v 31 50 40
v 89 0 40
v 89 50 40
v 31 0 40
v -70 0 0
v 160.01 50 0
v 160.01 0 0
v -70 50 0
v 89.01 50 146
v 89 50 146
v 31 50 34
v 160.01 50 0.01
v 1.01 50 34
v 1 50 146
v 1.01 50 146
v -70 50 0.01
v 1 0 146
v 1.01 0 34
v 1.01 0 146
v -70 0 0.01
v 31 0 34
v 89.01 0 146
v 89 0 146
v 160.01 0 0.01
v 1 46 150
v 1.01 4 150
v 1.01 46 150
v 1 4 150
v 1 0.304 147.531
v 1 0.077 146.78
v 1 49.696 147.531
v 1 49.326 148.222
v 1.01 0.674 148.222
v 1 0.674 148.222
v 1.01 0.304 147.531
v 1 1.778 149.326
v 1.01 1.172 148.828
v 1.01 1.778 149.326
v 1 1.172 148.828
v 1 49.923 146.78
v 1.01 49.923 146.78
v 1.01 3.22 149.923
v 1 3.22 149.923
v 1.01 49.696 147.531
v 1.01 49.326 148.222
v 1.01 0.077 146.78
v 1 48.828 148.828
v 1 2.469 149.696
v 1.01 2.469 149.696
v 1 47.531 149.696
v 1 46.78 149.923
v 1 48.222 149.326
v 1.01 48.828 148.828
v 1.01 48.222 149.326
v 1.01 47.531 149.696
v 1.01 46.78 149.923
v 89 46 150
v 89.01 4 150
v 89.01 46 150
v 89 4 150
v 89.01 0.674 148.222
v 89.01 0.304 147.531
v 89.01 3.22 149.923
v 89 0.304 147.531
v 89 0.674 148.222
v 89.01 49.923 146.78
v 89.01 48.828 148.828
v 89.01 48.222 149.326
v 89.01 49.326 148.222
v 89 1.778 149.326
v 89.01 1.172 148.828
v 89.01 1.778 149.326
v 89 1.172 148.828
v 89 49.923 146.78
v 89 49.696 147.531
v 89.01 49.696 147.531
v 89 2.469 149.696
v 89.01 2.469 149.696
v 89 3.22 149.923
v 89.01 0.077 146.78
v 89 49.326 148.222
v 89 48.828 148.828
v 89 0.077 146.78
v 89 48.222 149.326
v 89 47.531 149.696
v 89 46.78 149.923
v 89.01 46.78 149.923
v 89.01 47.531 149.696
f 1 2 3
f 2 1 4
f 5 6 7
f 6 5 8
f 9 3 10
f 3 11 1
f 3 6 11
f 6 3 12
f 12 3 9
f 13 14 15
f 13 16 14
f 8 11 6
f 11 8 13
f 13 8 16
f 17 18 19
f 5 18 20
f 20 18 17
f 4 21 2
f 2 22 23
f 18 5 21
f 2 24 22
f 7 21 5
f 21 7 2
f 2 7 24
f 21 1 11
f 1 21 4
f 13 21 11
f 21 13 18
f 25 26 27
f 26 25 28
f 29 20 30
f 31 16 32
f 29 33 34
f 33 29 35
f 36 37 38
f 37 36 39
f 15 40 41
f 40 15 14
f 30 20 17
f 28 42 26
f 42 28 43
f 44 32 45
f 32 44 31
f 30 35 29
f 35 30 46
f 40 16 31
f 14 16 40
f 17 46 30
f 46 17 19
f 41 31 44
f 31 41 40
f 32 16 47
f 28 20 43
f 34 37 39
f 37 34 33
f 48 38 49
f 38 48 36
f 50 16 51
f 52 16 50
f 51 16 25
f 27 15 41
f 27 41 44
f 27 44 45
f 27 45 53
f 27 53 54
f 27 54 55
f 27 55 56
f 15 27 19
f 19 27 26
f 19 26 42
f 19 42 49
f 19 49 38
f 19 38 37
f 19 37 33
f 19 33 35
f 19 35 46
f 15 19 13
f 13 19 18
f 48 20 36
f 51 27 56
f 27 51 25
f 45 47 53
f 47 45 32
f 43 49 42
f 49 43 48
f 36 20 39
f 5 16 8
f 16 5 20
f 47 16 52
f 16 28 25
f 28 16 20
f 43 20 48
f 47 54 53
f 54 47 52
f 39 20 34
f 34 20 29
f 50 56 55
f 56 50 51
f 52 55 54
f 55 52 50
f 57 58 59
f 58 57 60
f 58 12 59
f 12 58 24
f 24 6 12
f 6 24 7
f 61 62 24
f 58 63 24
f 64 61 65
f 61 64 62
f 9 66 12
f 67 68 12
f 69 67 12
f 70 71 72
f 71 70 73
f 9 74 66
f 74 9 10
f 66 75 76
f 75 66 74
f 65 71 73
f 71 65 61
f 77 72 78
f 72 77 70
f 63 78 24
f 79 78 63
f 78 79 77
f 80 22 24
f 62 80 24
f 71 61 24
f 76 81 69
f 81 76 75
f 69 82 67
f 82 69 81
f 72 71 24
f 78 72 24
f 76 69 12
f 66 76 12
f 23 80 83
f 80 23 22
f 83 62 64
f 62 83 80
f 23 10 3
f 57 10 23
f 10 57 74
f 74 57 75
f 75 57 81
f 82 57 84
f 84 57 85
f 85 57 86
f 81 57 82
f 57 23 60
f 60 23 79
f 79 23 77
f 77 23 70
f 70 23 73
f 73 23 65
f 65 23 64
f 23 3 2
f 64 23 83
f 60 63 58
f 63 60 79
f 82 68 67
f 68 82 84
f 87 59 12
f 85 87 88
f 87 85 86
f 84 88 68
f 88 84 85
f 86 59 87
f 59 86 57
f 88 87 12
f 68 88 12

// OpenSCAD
// Kufe v16 — DRUCKVERSION
// Innenmaß: 88mm (Server Y 87.3mm + 0.7mm Luft)
// Gesamtlänge: 230mm
// Material: PETG, 40-50% Infill, 3-4 Perimeter, liegend drucken
// 2× identisch drucken

r = 4;
$fn = 32;

// --- Quader mit Ausschnitt (Rack-Ear Aufnahme) ---
difference() {
    cube([90, 50, 40]);
    translate([0, -1, 34])
    cube([31, 52, 7]);
}

// --- Keil links (70mm) ---
hull() {
    translate([1,   0, 0]) cube([0.01, 50, 0.01]);
    translate([-70, 0, 0]) cube([0.01, 50, 0.01]);

    translate([1, r, r]) rotate([0,90,0]) cylinder(r=r, h=0.01);
    translate([1, 50-r, r]) rotate([0,90,0]) cylinder(r=r, h=0.01);

    translate([1, r, 150-r]) rotate([0,90,0]) cylinder(r=r, h=0.01);
    translate([1, 50-r, 150-r]) rotate([0,90,0]) cylinder(r=r, h=0.01);
}

// --- Keil rechts (70mm) ---
translate([90, 0, 0])
hull() {
    translate([-1,  0, 0]) cube([0.01, 50, 0.01]);
    translate([70,  0, 0]) cube([0.01, 50, 0.01]);

    translate([-1, r, r]) rotate([0,90,0]) cylinder(r=r, h=0.01);
    translate([-1, 50-r, r]) rotate([0,90,0]) cylinder(r=r, h=0.01);

    translate([-1, r, 150-r]) rotate([0,90,0]) cylinder(r=r, h=0.01);
    translate([-1, 50-r, 150-r]) rotate([0,90,0]) cylinder(r=r, h=0.01);
}

echo("Innenmaß:", 90-2, "mm — Server Y: 87.3mm — Luft: 0.7mm");
echo("Gesamtlänge:", 70+90+70, "mm");
